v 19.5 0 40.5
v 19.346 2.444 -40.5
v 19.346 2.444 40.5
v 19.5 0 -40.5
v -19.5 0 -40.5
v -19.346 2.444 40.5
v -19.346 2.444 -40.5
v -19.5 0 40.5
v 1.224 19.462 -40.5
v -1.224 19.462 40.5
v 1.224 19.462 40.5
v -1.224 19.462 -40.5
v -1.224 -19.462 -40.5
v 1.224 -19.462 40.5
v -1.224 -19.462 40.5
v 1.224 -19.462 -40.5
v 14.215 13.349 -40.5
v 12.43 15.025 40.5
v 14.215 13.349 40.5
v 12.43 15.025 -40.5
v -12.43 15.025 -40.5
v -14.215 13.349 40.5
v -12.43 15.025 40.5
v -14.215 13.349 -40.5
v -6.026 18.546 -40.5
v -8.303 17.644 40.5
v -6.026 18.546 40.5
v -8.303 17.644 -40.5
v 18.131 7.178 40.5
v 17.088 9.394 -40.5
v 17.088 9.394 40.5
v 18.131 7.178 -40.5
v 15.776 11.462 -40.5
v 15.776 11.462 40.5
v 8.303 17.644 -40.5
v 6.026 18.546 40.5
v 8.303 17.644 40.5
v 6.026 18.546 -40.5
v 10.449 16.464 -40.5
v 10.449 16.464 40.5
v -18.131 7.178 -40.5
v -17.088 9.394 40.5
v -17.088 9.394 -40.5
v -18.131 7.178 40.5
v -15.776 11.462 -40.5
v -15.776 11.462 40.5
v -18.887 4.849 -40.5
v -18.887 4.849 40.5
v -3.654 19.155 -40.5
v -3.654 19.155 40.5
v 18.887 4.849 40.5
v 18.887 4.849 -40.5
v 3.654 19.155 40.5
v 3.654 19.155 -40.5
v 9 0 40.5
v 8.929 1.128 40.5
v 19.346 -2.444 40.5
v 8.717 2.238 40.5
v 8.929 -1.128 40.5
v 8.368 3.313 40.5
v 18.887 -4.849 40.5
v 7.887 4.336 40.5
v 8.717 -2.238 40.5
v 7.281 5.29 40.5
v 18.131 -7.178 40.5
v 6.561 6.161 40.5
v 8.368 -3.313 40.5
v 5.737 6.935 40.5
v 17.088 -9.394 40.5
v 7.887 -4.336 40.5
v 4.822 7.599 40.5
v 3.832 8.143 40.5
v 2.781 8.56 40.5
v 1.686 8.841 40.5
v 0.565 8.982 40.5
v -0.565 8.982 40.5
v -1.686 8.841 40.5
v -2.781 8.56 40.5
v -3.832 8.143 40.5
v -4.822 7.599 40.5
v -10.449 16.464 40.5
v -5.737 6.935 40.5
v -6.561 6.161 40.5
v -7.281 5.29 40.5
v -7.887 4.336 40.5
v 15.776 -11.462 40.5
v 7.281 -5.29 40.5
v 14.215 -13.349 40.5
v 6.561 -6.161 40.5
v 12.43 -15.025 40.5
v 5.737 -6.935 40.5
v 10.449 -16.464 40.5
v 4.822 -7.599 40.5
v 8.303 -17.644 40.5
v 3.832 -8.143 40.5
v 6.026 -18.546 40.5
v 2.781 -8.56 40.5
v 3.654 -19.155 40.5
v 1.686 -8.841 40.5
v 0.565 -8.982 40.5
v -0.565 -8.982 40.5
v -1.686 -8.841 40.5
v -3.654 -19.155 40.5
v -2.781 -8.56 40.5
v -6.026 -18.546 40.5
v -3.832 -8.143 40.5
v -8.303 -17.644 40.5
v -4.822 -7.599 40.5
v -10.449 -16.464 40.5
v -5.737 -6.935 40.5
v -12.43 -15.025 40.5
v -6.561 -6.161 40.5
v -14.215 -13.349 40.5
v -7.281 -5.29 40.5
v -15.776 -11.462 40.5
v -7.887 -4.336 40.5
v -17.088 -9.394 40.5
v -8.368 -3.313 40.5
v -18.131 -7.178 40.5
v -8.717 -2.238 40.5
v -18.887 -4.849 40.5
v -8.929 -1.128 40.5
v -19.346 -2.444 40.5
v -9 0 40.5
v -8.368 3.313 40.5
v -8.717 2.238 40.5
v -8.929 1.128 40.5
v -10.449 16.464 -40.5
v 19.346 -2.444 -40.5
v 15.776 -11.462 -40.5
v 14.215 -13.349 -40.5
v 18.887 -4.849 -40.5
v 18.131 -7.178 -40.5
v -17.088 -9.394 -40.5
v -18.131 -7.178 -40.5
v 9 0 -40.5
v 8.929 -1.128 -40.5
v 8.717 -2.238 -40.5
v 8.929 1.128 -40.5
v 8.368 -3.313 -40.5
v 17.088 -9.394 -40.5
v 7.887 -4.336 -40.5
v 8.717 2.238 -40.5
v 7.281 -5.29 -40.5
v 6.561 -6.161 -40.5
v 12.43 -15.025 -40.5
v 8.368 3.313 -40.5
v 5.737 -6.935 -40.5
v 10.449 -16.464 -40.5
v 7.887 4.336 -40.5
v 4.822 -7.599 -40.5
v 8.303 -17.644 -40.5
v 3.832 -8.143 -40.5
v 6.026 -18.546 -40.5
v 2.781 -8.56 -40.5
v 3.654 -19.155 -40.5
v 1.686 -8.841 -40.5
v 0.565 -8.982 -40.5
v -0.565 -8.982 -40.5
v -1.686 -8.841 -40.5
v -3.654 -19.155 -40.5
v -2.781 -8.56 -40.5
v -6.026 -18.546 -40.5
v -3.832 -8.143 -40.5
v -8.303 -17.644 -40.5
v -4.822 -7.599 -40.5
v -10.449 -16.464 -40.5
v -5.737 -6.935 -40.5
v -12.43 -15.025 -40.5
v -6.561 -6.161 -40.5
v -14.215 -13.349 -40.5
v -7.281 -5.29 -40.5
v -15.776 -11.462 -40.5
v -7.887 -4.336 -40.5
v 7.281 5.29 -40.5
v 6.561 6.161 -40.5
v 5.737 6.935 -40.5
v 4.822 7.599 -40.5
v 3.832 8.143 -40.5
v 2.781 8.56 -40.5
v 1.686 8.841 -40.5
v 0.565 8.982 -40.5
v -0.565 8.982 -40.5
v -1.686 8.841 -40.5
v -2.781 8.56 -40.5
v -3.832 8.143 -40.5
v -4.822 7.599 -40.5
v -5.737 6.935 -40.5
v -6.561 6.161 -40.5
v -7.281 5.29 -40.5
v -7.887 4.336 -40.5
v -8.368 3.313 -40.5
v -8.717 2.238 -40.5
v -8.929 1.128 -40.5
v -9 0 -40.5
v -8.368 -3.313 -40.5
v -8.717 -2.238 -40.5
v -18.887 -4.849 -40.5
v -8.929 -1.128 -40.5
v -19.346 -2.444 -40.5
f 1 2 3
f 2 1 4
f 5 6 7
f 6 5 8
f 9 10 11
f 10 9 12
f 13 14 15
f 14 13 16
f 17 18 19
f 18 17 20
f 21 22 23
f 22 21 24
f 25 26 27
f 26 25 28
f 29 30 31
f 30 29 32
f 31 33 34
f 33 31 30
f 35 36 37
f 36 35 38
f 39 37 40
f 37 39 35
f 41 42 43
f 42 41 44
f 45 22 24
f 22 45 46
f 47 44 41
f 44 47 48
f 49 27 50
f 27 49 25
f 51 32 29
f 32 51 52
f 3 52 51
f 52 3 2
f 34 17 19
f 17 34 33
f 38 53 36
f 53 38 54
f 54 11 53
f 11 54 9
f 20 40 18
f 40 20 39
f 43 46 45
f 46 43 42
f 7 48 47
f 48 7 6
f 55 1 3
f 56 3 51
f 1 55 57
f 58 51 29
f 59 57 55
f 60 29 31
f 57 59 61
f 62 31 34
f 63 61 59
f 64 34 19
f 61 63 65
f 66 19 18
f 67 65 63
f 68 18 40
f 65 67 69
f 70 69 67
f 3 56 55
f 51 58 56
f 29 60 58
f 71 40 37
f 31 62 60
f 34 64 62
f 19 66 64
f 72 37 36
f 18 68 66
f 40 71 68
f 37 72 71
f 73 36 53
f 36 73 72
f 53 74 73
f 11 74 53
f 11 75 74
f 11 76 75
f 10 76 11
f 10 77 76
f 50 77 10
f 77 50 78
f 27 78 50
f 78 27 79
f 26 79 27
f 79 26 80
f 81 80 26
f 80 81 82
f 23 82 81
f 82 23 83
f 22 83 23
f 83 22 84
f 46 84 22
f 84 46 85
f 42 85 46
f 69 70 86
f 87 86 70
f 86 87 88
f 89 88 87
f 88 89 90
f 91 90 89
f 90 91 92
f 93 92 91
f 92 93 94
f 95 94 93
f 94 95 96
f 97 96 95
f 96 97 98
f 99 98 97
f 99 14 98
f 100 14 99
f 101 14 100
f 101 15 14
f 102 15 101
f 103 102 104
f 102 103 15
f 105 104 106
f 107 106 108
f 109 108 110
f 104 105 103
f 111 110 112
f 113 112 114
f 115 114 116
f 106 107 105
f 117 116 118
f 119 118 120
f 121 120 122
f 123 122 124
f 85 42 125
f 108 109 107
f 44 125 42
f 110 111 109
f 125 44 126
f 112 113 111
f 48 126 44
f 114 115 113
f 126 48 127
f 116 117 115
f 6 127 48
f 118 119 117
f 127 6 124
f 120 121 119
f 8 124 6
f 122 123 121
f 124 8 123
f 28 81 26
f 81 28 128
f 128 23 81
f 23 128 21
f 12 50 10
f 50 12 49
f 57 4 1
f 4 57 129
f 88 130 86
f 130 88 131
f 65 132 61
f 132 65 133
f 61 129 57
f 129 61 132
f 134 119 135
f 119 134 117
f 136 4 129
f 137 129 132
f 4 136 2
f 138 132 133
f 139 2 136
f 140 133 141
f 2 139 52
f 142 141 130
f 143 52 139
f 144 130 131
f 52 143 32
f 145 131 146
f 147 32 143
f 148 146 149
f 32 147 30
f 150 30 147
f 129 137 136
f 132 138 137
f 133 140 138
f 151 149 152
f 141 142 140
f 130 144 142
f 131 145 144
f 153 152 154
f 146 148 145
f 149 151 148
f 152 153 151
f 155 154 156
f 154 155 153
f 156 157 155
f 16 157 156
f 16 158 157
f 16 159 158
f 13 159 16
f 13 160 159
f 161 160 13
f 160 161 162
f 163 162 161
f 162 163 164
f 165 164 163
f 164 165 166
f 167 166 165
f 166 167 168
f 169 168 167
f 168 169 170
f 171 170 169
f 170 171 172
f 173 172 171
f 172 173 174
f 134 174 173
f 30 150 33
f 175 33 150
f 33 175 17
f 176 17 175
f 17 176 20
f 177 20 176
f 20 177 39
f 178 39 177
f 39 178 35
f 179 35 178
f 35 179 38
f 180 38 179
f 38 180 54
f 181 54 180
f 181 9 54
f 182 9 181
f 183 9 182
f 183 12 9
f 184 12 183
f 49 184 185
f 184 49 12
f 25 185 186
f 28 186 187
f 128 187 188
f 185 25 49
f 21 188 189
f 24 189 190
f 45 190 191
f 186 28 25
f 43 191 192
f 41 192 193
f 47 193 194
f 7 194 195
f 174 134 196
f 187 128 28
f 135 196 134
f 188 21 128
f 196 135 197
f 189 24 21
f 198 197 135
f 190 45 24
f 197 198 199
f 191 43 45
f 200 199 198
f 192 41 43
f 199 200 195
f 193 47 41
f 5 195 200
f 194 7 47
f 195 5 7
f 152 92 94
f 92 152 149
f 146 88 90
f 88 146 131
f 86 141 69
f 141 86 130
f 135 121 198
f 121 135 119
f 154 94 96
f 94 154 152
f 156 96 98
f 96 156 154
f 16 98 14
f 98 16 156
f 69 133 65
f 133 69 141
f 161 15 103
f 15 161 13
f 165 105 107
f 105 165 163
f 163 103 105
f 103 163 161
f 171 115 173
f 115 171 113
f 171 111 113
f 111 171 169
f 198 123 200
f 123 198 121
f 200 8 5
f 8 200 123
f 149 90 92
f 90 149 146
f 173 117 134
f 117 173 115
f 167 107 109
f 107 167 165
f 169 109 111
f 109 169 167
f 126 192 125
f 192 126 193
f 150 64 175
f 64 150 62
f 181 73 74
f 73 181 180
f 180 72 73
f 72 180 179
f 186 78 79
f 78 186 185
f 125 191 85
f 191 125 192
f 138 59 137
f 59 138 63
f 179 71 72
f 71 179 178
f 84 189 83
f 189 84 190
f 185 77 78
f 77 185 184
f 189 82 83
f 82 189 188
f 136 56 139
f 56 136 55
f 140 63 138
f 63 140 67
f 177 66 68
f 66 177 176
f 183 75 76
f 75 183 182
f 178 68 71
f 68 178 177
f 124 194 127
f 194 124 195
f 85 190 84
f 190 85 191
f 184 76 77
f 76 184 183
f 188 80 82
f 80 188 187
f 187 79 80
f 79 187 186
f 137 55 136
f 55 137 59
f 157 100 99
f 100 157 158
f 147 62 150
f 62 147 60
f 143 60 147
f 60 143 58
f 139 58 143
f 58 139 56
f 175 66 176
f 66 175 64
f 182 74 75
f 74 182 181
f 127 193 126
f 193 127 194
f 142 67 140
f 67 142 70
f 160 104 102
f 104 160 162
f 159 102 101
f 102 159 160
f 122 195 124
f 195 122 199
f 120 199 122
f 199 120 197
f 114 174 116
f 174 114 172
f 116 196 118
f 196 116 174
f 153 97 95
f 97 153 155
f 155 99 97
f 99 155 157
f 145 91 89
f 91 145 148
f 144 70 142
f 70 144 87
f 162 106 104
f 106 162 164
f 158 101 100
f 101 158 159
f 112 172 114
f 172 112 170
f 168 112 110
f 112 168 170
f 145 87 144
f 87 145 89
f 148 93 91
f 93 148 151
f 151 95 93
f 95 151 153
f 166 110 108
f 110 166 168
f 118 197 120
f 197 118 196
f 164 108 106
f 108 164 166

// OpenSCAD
$fn = 50;


difference() {
	union() {
		translate(v = [0, 0, -40.5000000000]) {
			cylinder(h = 81, r = 19.5000000000);
		}
	}
	union() {
		translate(v = [0, 0, -100.0000000000]) {
			cylinder(h = 200, r = 9);
		}
	}
}
